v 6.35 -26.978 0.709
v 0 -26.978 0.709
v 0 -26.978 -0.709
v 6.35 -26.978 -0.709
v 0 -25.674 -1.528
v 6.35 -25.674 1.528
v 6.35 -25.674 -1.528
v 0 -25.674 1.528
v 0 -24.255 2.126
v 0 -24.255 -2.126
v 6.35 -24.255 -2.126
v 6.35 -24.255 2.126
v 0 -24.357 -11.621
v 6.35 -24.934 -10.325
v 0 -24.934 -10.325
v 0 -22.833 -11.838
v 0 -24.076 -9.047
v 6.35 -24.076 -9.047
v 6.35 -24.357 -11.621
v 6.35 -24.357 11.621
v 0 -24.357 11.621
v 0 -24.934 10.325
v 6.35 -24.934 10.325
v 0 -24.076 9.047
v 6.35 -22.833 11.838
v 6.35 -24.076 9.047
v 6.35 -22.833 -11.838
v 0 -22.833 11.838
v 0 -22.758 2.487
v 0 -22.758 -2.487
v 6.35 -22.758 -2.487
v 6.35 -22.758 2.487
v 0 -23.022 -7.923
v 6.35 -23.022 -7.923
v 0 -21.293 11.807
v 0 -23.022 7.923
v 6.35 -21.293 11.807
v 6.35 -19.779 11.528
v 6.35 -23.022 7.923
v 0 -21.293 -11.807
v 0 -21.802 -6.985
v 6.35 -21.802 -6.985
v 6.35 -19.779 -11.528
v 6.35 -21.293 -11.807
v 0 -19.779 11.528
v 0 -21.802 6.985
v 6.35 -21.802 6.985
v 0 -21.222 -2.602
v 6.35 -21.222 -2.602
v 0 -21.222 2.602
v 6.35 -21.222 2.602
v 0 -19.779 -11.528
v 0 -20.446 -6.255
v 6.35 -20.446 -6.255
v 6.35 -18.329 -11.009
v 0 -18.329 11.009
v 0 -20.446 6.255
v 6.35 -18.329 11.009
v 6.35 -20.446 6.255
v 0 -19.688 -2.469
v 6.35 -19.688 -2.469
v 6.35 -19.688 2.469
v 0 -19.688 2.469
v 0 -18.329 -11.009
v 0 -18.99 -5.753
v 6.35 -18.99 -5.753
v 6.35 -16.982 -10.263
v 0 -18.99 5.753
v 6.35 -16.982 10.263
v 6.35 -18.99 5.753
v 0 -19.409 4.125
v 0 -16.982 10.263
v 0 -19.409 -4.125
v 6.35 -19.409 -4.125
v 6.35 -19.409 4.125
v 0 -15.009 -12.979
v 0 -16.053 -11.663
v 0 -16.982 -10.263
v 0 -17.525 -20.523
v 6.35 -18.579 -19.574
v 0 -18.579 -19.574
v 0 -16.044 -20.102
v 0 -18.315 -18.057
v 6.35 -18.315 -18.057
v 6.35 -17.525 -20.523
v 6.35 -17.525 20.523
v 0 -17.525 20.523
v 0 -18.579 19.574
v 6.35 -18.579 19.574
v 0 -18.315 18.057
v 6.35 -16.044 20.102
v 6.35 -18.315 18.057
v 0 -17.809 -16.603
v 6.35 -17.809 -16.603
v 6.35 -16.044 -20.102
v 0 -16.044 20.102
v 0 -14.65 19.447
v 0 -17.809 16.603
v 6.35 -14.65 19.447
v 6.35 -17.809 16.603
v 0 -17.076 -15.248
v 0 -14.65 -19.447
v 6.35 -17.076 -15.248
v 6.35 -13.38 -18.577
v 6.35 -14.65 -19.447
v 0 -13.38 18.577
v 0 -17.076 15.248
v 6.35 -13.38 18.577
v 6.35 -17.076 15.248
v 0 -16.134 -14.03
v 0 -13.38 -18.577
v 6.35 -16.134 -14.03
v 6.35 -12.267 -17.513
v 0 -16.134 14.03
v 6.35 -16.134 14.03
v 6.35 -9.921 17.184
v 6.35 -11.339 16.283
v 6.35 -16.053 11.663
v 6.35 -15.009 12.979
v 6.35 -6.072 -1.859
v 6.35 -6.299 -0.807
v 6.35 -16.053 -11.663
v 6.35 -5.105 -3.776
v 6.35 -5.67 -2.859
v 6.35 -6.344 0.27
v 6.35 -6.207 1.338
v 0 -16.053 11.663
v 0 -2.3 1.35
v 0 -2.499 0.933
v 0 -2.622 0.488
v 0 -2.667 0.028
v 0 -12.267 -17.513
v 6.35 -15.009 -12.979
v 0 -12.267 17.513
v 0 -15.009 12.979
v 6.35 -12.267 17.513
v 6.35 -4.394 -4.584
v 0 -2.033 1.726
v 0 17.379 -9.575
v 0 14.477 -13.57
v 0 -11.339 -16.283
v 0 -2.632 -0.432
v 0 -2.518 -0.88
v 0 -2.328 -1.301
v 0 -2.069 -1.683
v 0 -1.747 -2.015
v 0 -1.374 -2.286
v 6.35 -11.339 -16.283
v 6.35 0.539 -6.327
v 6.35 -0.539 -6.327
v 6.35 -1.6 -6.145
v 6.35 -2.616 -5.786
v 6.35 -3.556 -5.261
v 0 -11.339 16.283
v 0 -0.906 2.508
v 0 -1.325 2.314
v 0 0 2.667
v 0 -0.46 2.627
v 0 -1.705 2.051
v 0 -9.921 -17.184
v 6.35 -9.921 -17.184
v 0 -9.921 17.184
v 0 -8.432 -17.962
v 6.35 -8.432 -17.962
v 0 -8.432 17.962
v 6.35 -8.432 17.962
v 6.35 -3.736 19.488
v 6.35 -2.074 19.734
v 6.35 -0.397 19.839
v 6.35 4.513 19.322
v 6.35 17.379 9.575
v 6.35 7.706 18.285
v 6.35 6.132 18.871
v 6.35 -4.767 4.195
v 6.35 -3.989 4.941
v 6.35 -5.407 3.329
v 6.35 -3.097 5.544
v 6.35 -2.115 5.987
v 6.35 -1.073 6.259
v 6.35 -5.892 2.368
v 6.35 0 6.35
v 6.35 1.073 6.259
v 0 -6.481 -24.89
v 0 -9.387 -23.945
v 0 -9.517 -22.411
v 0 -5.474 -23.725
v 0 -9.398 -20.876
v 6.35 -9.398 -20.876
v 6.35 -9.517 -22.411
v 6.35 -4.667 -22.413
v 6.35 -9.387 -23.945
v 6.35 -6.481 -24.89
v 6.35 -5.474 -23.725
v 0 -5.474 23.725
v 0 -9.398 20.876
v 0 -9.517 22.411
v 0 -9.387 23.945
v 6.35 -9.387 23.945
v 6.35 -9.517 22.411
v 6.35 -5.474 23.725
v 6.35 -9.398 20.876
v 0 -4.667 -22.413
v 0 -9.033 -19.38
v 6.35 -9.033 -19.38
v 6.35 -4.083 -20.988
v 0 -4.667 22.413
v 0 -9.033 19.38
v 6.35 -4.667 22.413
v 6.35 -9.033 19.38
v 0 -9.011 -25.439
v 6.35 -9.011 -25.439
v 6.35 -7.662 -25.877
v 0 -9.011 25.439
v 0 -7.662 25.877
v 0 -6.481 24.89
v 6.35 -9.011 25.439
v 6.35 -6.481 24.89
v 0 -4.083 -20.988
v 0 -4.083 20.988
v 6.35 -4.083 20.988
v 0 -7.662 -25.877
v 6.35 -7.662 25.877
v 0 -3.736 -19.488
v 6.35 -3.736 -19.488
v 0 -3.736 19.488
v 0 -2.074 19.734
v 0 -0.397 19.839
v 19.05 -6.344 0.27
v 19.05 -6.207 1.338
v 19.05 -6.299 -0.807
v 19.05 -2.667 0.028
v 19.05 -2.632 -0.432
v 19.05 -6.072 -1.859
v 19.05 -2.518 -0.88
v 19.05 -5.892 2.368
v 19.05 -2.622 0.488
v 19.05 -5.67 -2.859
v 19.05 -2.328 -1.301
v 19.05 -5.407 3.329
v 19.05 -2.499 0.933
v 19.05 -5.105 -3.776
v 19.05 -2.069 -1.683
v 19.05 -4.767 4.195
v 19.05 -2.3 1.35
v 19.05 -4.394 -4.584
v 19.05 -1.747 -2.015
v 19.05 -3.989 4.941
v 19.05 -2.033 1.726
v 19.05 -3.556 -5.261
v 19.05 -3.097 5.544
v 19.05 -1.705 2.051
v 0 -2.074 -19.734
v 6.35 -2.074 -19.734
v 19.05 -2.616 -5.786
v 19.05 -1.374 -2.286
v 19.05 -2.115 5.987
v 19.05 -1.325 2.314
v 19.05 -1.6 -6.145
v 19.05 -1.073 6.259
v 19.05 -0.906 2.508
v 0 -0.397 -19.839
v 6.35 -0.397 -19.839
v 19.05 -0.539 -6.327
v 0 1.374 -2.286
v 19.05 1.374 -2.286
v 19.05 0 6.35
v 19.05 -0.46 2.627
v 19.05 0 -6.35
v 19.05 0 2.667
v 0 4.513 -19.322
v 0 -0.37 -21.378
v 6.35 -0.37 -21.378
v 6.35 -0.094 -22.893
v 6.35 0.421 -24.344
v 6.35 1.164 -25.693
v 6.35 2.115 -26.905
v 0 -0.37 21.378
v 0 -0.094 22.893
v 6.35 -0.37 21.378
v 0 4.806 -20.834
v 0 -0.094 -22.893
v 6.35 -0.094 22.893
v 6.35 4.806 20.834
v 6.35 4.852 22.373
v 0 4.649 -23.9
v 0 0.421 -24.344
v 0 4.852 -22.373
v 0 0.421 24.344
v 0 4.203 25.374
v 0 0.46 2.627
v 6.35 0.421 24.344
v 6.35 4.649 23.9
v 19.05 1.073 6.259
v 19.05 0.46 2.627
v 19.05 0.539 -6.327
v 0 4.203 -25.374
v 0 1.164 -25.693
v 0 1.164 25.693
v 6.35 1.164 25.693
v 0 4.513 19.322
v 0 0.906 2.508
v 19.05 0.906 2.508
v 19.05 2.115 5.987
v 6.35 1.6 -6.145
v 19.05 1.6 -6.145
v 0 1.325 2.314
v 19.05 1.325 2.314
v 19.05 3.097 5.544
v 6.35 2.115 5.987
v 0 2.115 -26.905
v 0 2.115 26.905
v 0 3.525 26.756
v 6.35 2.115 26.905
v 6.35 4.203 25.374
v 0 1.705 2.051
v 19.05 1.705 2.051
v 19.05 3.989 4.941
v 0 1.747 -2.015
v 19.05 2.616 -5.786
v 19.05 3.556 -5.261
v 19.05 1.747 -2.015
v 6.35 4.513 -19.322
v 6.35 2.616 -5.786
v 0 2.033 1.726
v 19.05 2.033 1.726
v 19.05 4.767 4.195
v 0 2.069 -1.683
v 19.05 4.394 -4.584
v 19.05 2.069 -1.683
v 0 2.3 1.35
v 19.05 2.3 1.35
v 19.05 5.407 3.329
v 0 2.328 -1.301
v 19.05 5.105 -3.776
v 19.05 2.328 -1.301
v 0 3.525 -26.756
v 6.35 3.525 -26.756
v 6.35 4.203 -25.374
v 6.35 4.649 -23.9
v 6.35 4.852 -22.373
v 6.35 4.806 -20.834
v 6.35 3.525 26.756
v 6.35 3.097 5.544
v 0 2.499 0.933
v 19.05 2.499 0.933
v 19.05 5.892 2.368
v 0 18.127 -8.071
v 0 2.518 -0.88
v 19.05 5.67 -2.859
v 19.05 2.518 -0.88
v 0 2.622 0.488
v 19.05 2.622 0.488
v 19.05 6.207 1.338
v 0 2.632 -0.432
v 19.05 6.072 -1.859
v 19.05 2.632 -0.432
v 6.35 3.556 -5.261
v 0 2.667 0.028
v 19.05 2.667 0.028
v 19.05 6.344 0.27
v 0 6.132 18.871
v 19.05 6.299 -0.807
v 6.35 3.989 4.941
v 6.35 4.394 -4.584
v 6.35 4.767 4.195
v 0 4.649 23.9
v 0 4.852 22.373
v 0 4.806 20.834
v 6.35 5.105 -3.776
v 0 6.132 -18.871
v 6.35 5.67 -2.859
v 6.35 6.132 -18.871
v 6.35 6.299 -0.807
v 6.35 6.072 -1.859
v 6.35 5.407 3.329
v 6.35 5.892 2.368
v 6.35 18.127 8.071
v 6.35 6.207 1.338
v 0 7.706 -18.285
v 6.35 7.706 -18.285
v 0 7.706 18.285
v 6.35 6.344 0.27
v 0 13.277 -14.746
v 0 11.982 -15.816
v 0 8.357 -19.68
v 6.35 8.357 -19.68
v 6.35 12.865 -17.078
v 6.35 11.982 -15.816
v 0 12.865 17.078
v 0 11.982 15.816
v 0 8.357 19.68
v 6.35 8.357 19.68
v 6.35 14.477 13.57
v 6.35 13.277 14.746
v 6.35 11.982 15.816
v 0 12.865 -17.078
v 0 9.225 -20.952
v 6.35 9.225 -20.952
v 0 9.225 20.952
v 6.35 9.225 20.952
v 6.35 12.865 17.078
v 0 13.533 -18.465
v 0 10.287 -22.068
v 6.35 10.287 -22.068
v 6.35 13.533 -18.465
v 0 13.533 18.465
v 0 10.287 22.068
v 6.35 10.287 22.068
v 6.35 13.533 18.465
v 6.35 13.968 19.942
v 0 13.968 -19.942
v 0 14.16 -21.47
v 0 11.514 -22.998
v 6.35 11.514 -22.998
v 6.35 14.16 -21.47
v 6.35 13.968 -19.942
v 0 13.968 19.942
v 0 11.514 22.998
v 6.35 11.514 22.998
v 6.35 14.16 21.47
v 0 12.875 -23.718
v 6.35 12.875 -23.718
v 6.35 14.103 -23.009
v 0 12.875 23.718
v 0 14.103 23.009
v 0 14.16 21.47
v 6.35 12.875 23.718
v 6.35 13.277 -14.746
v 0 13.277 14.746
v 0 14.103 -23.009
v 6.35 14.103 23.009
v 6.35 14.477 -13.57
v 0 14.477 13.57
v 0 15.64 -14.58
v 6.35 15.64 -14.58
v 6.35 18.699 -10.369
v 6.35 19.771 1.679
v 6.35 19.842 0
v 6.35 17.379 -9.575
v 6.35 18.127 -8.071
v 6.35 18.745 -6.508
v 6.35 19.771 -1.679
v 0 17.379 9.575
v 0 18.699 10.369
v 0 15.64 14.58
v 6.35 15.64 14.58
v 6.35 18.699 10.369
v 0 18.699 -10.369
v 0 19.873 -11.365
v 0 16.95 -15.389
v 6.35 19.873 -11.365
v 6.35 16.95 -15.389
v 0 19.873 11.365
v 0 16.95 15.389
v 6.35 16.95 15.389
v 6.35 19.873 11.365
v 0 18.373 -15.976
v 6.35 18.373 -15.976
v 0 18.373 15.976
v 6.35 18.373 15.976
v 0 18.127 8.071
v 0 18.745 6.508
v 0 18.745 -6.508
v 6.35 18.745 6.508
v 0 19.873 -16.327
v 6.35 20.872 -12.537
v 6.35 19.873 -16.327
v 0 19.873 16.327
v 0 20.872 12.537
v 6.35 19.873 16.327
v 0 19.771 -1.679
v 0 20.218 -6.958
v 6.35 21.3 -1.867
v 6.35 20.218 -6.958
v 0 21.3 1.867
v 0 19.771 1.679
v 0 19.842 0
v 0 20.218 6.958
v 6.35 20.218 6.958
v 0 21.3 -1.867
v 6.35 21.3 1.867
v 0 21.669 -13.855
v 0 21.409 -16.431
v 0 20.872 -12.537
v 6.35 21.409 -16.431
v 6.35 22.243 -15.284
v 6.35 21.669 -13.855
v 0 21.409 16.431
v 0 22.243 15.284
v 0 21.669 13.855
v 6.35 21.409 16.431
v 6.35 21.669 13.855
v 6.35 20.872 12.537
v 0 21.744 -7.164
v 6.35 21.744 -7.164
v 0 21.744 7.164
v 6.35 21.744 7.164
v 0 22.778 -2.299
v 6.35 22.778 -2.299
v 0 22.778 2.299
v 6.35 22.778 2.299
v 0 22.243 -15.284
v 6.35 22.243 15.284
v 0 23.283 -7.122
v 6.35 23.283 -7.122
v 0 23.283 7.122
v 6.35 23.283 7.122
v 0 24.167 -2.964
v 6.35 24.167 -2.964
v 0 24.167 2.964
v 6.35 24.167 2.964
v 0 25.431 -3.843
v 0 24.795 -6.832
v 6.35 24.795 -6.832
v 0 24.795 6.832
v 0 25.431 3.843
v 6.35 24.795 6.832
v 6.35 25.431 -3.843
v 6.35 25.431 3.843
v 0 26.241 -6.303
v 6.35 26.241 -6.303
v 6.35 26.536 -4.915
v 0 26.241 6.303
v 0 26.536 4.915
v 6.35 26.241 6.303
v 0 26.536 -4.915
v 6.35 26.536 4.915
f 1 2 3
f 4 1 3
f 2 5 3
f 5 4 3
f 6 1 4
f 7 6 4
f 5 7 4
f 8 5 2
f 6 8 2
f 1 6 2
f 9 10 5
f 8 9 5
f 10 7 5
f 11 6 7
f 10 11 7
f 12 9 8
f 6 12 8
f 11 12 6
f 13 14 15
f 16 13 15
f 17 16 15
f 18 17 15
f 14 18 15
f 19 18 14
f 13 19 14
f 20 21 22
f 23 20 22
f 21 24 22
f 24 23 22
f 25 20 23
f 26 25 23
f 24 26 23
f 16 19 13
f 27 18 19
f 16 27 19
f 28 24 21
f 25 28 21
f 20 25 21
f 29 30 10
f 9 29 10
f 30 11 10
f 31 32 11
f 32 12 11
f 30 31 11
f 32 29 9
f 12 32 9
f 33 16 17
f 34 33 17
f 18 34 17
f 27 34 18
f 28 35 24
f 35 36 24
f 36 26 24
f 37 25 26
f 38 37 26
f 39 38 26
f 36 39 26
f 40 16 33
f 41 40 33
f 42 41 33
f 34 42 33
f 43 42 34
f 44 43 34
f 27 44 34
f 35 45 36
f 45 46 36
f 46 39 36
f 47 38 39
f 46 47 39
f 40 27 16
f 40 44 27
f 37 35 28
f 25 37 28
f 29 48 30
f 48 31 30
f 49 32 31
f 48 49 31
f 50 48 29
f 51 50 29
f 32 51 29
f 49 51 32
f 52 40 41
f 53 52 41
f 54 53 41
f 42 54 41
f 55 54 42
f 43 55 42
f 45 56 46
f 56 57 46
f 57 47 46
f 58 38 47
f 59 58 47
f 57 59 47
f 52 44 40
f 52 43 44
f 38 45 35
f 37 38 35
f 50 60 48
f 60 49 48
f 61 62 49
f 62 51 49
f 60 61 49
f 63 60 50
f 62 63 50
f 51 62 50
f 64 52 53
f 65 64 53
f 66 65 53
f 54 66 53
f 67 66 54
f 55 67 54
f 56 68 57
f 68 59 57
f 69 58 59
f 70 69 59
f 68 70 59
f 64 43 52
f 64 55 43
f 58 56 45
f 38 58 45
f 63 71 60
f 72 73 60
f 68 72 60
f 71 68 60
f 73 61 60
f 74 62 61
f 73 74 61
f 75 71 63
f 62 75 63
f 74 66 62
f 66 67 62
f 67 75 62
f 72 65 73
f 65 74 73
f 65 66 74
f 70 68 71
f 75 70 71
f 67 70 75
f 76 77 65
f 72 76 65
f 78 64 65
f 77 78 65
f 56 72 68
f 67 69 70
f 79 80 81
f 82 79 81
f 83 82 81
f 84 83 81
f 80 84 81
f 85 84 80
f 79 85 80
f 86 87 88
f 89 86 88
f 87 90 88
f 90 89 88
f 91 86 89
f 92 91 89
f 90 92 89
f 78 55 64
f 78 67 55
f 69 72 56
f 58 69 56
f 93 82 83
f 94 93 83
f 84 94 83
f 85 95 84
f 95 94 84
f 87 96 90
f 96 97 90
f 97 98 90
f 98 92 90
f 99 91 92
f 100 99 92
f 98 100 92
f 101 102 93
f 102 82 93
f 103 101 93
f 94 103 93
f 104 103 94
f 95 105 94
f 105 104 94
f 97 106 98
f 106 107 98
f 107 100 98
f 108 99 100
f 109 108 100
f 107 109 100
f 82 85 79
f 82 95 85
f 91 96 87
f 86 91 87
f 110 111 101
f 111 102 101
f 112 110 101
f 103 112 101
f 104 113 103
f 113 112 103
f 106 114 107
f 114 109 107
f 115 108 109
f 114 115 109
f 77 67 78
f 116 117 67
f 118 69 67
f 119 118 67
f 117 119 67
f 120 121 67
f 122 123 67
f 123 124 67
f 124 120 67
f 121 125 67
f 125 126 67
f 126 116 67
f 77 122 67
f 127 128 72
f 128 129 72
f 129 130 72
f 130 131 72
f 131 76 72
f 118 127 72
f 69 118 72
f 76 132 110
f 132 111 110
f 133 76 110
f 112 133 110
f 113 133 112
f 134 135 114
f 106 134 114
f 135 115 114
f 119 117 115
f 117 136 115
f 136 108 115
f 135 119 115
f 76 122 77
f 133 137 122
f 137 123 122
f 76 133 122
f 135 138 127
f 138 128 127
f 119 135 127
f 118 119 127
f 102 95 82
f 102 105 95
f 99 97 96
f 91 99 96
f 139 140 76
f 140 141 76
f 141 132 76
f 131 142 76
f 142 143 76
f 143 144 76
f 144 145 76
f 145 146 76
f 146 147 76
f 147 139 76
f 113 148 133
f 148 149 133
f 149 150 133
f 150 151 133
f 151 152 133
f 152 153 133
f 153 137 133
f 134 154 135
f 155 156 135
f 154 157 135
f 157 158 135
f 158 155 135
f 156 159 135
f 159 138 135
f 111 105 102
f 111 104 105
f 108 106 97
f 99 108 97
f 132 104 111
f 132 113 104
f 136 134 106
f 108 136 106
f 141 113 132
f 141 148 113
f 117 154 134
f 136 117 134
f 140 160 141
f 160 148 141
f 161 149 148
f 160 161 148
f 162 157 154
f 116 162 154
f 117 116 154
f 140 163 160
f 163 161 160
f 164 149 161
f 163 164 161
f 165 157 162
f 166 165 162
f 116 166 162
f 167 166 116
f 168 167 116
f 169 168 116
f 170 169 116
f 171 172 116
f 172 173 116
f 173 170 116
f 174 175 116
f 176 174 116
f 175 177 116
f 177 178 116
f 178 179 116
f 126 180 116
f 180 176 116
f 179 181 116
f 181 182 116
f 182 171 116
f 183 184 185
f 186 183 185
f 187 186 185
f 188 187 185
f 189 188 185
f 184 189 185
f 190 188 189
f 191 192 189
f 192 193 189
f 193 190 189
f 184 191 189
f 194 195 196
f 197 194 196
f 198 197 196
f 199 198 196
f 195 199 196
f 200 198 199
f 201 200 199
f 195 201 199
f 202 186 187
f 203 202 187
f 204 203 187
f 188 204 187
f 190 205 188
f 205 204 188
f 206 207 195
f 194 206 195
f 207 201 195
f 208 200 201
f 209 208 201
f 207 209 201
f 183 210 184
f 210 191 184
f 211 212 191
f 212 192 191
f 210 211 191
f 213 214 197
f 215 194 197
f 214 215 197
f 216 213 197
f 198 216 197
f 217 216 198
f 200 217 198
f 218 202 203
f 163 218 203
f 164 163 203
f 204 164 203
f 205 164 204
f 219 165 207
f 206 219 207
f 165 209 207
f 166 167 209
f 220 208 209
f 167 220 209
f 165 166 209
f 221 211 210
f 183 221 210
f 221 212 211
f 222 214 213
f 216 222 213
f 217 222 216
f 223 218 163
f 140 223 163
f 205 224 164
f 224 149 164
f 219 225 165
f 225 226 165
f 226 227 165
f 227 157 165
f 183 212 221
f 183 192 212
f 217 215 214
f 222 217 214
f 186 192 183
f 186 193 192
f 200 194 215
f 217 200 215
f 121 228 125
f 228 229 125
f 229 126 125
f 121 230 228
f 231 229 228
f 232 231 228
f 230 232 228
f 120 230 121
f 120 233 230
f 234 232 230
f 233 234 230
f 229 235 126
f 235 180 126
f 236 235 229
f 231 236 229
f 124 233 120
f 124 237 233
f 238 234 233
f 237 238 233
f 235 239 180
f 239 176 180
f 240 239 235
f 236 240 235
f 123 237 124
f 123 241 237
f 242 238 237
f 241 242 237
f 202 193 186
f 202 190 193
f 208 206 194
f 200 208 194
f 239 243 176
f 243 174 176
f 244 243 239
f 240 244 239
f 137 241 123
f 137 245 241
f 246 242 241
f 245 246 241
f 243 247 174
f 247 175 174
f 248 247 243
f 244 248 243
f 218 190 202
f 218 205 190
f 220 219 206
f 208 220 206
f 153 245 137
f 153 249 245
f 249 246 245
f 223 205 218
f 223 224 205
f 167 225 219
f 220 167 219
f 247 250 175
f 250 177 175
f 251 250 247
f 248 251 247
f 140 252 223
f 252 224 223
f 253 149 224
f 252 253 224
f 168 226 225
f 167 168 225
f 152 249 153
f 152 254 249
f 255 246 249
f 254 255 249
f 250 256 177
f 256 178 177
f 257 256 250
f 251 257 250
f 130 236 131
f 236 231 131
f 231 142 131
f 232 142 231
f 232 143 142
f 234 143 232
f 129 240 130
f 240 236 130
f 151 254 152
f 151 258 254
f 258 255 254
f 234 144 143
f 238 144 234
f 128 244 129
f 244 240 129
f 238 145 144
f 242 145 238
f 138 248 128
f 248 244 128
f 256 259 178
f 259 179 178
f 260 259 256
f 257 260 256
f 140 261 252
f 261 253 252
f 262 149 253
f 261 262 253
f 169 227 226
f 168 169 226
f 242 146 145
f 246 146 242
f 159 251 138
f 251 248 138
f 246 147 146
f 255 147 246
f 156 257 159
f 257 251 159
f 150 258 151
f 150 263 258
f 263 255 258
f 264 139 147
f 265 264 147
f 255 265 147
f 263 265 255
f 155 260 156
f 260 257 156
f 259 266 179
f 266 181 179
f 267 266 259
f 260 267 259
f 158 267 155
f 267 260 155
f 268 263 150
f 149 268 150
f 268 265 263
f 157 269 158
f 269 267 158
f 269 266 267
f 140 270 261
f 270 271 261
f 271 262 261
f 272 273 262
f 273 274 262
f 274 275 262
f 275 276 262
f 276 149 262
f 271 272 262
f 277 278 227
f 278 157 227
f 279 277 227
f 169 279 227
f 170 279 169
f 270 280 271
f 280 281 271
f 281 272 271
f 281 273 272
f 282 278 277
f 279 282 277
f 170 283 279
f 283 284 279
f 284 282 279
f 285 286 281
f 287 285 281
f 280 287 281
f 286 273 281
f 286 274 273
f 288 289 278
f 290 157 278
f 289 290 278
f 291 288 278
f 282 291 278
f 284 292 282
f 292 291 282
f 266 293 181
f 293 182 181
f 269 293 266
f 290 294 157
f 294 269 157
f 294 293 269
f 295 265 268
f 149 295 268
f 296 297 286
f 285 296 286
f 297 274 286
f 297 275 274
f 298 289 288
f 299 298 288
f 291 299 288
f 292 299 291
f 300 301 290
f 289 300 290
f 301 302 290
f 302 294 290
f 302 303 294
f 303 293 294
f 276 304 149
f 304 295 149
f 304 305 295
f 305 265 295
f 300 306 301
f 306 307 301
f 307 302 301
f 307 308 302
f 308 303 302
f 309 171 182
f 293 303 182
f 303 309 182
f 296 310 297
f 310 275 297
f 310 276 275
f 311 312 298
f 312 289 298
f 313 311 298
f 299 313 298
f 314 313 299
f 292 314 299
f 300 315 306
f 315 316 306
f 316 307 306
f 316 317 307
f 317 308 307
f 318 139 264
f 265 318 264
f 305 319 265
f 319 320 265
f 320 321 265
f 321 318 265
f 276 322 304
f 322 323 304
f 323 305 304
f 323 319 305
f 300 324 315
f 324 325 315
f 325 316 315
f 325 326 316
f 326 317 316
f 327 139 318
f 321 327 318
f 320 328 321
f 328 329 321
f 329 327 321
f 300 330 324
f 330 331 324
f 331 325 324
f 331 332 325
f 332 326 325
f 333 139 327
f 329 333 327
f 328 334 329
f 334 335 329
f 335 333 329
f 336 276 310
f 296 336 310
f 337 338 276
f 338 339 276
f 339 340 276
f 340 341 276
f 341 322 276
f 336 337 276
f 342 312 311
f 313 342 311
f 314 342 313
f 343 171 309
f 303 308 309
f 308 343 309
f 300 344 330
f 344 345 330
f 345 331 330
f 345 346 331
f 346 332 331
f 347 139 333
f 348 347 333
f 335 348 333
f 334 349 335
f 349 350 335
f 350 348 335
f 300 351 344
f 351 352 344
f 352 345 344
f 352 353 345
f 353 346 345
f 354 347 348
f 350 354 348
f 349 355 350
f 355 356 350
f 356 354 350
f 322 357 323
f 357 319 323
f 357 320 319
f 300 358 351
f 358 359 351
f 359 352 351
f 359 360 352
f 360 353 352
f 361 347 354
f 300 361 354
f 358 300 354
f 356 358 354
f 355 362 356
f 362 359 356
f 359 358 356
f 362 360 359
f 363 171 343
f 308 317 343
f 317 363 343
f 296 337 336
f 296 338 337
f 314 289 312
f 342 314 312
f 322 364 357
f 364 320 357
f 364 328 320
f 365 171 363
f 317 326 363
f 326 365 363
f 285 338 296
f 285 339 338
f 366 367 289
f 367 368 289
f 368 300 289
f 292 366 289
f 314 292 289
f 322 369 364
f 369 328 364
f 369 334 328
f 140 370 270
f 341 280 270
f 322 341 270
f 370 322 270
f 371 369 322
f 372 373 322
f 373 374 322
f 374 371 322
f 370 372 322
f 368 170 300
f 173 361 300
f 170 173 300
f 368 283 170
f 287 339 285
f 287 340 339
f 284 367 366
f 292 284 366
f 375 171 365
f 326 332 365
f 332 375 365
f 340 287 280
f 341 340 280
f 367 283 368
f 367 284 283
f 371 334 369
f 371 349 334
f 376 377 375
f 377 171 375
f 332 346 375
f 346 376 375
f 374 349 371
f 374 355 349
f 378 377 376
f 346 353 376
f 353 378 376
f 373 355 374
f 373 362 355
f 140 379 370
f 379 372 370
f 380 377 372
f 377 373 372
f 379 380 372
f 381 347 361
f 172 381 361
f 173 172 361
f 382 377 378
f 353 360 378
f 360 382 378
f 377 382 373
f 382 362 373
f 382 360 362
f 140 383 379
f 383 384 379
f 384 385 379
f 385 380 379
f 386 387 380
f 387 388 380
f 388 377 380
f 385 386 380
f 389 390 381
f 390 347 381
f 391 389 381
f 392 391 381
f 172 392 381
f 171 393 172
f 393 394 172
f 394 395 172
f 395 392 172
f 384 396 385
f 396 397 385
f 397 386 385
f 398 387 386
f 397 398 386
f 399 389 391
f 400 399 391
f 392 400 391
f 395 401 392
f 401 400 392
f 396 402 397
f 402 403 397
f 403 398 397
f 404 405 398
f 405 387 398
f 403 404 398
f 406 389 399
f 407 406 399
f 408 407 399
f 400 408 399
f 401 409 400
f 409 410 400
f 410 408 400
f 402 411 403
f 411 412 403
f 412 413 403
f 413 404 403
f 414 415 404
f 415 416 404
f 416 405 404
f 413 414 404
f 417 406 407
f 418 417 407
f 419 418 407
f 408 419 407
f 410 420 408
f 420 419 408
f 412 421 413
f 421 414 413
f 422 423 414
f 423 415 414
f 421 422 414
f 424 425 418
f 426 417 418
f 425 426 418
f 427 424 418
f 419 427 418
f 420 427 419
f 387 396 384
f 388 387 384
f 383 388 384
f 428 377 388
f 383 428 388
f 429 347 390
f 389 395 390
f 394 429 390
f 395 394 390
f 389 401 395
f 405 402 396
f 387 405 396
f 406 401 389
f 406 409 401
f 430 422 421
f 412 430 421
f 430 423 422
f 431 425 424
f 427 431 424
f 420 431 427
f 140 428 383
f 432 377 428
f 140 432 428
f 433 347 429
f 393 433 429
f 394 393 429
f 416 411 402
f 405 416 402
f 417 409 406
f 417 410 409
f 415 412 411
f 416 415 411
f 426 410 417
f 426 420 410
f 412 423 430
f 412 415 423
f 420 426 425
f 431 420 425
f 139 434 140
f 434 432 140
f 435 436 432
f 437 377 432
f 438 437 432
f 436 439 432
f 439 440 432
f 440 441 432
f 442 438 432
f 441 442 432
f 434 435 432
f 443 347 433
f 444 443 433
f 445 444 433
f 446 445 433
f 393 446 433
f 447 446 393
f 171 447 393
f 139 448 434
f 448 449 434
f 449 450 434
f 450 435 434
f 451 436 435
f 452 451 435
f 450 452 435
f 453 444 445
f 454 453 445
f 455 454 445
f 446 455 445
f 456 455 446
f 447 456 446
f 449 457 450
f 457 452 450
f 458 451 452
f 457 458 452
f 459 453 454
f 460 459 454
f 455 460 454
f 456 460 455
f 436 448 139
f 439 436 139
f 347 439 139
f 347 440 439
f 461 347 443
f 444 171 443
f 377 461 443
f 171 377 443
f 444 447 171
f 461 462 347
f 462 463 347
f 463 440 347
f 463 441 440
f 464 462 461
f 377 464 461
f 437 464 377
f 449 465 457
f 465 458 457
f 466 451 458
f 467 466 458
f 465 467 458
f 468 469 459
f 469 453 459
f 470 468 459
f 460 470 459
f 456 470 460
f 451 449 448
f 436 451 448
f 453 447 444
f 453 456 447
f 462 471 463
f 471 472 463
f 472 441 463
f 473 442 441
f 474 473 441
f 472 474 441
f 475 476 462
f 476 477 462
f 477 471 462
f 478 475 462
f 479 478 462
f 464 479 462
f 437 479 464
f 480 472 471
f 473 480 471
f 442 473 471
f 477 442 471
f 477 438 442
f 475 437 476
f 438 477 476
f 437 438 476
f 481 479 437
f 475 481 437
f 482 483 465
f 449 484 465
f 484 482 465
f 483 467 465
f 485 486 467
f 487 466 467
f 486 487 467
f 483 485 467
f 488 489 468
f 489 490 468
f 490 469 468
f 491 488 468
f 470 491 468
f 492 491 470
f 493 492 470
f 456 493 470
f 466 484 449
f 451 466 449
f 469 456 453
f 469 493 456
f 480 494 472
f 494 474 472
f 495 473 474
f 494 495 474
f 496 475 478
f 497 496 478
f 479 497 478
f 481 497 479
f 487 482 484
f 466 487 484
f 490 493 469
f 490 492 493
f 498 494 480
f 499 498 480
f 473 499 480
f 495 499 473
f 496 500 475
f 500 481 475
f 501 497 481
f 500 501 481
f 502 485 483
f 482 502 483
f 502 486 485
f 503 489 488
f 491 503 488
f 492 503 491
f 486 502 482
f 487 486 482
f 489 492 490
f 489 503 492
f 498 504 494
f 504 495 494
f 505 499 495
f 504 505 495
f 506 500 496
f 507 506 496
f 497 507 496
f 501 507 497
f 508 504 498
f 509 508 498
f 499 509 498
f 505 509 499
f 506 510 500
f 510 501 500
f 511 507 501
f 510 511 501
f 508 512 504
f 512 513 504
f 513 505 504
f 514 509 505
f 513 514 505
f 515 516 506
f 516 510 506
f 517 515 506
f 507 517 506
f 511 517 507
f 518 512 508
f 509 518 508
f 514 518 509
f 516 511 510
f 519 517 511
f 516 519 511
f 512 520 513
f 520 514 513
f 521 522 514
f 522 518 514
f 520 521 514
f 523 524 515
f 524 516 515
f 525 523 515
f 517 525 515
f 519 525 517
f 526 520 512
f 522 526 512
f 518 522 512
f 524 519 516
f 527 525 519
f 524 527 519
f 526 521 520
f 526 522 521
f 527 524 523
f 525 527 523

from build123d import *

# Parameters (mm, degrees)
BASPROSKE_W         = 6.35
BASPROSKE_H         = 26.9875
TOOTHCUT_DEPTH      = 39.690732902
TEETHCUTS_COUNT     = 15
BORSKE_R            = 1.5875
BORE_DEPTH          = 50.8000508
SKETCH1_R           = 6.35
BOSS_EXTRUDE1_DEPTH = 12.7
CUT_EXTRUDE1_DEPTH  = 43.603765196


with BuildPart() as part:
    # BasProSke → Base-Revolve (revolve)
    with BuildSketch(Plane(origin=(0, 0, 0), x_dir=(1, 0, 0), z_dir=(0, 1, 0)), mode=Mode.PRIVATE) as base_revolve_sk:
        with Locations((3.175, 13.49375)):
            Rectangle(BASPROSKE_W, BASPROSKE_H)
    revolve(base_revolve_sk.sketch.rotate(Axis((-10, 0, 0), (1, 0, 0)), 180), axis=Axis((-10, 0, 0), (1, 0, 0)))

    # TooCutSke → ToothCut (cut, through all)
    with BuildSketch(Plane(origin=(0, 0, 0), x_dir=(0, 0, -1), z_dir=(1, 0, 0))):
        with BuildLine():
            ThreePointArc((1.678565227, 19.771353806), (0, 19.84248), (-1.678565227, 19.771353806))
            ThreePointArc((-1.678565227, 19.771353806), (-2.61022813, 23.500276553), (-4.939797818, 26.557393771))
            ThreePointArc((-4.939797818, 26.557393771), (0, 27.0129), (4.939797818, 26.557393771))
            ThreePointArc((4.939797818, 26.557393771), (2.61022813, 23.500276553), (1.678565227, 19.771353806))
        make_face()
    toothcut = extrude(amount=TOOTHCUT_DEPTH, mode=Mode.SUBTRACT)

    # TeethCuts: ToothCut ×15 about axis
    teethcuts_axis = Axis((0, 0, 0), (1, 0, 0))
    for i in range(1, TEETHCUTS_COUNT):
        add(toothcut.rotate(teethcuts_axis, i * 360 / TEETHCUTS_COUNT), mode=Mode.SUBTRACT)

    # BorSke → Bore (cut, symmetric)
    with BuildSketch(Plane(origin=(0, 0, 0), x_dir=(0, 0, -1), z_dir=(1, 0, 0))):
        with Locations(Location((0, 0, 0), (0, 0, 180))):
            Circle(BORSKE_R)
    extrude(amount=BORE_DEPTH, both=True, mode=Mode.SUBTRACT)

    # Sketch1 → Boss-Extrude1 (add)
    with BuildSketch(Plane(origin=(6.35, 0, 0), x_dir=(0, 0, -1), z_dir=(1, 0, 0))):
        with Locations(Location((0, 0, 0), (0, 0, 180))):
            Circle(SKETCH1_R)
    extrude(amount=BOSS_EXTRUDE1_DEPTH)

    # Sketch2 → Cut-Extrude1 (cut, through all)
    with BuildSketch(Plane(origin=(19.05, 0, 0), x_dir=(0, 0, -1), z_dir=(1, 0, 0))):
        with BuildLine():
            ThreePointArc((2.286, 1.373715036), (1.313238554, 2.321269803), (0, 2.667))
            Line((0, 2.667), (0, 0))
            Line((0, 0), (2.286, 0))
            Line((2.286, 0), (2.286, 1.373715036))
        make_face()
        with BuildLine():
            Line((2.286, 0), (0, 0))
            Line((0, 0), (0, -2.667))
            ThreePointArc((0, -2.667), (1.313238554, -2.321269803), (2.286, -1.373715036))
            Line((2.286, -1.373715036), (2.286, 0))
        make_face()
        with BuildLine():
            Line((0, 0), (0, 2.667))
            ThreePointArc((0, 2.667), (-2.667, 0), (0, -2.667))
            Line((0, -2.667), (0, 0))
        make_face()
        with BuildLine():
            ThreePointArc((2.286, 1.373715036), (1.313238554, 2.321269803), (0, 2.667))
            Line((0, 2.667), (0, 0))
            Line((0, 0), (2.286, 0))
            Line((2.286, 0), (2.286, 1.373715036))
        make_face()
        with BuildLine():
            Line((2.286, 0), (0, 0))
            Line((0, 0), (0, -2.667))
            ThreePointArc((0, -2.667), (1.313238554, -2.321269803), (2.286, -1.373715036))
            Line((2.286, -1.373715036), (2.286, 0))
        make_face()
    extrude(amount=-CUT_EXTRUDE1_DEPTH, mode=Mode.SUBTRACT)


solid = part.part
